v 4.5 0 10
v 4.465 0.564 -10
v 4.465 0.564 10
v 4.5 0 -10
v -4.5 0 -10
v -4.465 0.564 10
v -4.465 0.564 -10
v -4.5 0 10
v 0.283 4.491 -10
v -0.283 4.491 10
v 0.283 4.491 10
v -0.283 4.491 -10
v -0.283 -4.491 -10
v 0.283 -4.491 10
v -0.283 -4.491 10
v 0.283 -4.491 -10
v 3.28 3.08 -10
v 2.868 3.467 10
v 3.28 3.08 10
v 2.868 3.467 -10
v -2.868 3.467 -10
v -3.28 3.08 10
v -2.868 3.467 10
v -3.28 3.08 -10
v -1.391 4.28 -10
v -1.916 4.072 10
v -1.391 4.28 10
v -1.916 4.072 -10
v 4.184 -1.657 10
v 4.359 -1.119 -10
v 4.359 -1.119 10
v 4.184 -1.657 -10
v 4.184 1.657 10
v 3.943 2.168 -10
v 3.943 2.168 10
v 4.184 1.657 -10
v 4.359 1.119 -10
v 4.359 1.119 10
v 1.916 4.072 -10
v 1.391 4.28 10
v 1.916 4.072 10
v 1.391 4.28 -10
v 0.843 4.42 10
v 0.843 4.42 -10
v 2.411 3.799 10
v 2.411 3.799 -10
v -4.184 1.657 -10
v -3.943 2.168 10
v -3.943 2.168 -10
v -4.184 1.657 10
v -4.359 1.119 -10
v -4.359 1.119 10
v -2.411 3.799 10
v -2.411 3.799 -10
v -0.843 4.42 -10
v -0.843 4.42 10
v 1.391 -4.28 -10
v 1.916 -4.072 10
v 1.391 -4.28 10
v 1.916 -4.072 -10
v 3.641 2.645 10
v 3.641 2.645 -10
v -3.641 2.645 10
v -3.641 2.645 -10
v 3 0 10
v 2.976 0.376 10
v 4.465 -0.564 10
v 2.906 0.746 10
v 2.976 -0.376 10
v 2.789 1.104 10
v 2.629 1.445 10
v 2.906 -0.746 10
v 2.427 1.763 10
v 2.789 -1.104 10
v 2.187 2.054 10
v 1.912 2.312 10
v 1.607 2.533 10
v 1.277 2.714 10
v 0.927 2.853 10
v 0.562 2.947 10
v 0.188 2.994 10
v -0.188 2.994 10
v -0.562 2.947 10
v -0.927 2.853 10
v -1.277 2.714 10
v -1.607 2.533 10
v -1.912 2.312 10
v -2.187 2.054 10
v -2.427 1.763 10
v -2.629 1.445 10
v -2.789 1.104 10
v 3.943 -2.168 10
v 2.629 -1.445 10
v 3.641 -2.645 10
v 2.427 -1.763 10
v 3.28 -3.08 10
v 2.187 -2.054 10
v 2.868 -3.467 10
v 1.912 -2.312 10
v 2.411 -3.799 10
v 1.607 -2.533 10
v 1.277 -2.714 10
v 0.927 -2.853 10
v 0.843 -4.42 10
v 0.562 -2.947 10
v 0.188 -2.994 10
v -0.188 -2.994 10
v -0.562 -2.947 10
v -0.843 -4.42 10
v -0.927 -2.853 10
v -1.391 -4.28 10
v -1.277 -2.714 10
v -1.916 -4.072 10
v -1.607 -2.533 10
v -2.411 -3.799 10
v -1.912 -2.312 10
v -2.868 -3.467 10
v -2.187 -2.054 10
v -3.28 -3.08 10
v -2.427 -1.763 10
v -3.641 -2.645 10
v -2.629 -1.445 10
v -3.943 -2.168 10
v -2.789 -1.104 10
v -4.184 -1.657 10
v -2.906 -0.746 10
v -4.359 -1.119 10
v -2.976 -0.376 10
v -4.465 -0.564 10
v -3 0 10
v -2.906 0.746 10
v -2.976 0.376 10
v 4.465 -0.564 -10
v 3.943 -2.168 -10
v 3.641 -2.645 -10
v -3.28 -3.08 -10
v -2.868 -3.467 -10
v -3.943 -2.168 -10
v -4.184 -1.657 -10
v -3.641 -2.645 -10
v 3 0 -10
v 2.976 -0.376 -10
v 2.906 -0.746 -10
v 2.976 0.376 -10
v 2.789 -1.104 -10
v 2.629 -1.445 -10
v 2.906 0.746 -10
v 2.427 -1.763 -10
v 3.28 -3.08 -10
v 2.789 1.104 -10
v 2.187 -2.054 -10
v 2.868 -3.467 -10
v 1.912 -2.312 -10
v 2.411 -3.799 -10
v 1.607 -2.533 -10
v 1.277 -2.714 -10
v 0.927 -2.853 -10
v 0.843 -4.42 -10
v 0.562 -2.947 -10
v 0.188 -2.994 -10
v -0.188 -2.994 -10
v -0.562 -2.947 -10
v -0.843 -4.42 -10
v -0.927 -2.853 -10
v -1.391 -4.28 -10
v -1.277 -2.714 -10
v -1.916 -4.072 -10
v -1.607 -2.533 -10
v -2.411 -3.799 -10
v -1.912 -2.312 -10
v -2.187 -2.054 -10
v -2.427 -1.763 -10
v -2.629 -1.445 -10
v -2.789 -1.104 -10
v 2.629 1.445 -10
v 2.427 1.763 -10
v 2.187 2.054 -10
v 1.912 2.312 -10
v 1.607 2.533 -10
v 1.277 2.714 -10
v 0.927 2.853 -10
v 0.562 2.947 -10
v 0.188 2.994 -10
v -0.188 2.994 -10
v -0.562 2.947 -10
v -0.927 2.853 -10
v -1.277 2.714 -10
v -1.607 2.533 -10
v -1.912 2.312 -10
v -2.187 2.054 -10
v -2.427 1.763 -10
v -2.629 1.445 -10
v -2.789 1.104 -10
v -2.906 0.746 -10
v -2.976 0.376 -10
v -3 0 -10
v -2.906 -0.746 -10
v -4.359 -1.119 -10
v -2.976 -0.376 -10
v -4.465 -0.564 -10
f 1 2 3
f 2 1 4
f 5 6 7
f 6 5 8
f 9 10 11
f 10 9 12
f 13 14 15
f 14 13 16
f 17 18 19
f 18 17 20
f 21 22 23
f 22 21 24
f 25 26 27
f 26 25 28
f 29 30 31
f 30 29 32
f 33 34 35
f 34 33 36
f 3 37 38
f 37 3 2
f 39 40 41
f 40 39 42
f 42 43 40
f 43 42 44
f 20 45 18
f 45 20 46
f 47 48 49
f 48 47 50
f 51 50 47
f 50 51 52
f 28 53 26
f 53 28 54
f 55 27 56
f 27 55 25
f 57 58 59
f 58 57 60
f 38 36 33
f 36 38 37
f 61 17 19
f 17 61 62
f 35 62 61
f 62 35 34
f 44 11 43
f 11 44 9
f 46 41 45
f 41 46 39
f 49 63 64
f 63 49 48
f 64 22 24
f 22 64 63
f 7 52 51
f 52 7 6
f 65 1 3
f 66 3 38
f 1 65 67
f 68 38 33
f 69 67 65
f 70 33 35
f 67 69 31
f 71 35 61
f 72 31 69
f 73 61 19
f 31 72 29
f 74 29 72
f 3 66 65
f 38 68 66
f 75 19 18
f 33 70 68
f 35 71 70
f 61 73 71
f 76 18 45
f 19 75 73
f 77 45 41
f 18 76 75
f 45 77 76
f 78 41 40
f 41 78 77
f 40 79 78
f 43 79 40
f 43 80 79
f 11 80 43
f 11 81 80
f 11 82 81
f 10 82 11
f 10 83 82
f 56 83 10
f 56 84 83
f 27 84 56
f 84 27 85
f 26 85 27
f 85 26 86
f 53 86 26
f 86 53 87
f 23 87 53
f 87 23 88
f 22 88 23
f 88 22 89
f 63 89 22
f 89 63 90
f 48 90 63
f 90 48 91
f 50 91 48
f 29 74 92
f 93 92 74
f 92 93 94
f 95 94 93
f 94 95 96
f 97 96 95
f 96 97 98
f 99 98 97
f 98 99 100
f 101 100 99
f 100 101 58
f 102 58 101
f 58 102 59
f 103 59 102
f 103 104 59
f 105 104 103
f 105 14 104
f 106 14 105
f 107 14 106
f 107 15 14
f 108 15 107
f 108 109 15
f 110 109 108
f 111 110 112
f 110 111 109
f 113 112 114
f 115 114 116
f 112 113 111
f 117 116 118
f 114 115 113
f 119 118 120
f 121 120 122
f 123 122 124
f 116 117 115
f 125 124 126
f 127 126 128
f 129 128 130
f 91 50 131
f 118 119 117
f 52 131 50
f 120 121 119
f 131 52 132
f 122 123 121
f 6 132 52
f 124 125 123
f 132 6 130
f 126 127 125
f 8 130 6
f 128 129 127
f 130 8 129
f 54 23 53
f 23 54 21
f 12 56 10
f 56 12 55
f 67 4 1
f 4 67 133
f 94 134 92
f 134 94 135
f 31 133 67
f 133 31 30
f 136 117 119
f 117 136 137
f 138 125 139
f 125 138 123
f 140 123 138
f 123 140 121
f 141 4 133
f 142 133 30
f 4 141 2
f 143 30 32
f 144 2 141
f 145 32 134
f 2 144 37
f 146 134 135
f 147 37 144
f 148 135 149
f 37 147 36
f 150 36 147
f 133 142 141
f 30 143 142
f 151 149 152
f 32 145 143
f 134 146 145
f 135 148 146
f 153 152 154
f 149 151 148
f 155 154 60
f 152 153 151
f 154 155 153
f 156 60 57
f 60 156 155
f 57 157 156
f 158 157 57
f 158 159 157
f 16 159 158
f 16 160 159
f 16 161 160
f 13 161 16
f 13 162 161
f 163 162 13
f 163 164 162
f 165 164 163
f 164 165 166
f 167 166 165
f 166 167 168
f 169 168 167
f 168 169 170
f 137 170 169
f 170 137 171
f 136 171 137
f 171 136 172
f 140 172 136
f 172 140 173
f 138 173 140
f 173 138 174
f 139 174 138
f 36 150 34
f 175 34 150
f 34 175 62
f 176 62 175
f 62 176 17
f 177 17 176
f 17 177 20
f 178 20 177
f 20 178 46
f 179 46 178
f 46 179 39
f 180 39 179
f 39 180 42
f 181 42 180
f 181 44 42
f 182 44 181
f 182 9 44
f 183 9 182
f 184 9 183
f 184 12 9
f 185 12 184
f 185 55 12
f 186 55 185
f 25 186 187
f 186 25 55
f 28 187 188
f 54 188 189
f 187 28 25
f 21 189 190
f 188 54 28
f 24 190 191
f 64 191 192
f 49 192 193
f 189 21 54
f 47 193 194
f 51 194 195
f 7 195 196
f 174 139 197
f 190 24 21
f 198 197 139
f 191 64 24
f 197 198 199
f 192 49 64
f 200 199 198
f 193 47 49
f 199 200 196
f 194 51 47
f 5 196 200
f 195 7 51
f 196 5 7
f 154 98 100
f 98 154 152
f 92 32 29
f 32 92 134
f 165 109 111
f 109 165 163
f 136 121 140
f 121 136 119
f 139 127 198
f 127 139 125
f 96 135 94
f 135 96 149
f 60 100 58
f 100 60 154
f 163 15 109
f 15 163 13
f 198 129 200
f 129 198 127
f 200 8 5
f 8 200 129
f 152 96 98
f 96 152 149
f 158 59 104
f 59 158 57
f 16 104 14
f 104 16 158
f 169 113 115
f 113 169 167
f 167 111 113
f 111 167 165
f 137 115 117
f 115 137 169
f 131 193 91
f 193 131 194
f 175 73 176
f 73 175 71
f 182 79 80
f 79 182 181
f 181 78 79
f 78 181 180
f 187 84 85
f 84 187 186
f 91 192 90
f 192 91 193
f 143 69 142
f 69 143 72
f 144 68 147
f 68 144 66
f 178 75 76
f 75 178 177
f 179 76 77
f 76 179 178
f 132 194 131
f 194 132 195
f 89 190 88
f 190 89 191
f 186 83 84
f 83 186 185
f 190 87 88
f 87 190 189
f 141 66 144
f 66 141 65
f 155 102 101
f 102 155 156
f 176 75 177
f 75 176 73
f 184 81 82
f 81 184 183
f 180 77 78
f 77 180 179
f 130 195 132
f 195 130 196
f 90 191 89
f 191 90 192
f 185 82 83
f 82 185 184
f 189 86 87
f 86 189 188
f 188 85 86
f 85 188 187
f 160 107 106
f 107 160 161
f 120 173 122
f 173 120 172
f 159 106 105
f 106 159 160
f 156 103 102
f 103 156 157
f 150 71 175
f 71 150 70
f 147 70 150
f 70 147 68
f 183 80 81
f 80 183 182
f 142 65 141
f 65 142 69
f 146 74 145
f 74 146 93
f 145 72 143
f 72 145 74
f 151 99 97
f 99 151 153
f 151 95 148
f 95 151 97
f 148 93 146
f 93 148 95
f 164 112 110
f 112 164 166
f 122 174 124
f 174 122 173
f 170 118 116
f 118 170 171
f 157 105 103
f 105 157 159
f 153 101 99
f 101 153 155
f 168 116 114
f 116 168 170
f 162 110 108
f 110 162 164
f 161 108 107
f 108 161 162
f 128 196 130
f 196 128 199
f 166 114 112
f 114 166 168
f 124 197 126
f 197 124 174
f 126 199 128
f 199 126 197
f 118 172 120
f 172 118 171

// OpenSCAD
$fn = 50;


difference() {
	union() {
		translate(v = [0, 0, -10.0000000000]) {
			cylinder(h = 20, r = 4.5000000000);
		}
	}
	union() {
		translate(v = [0, 0, -100.0000000000]) {
			cylinder(h = 200, r = 3.0000000000);
		}
	}
}
